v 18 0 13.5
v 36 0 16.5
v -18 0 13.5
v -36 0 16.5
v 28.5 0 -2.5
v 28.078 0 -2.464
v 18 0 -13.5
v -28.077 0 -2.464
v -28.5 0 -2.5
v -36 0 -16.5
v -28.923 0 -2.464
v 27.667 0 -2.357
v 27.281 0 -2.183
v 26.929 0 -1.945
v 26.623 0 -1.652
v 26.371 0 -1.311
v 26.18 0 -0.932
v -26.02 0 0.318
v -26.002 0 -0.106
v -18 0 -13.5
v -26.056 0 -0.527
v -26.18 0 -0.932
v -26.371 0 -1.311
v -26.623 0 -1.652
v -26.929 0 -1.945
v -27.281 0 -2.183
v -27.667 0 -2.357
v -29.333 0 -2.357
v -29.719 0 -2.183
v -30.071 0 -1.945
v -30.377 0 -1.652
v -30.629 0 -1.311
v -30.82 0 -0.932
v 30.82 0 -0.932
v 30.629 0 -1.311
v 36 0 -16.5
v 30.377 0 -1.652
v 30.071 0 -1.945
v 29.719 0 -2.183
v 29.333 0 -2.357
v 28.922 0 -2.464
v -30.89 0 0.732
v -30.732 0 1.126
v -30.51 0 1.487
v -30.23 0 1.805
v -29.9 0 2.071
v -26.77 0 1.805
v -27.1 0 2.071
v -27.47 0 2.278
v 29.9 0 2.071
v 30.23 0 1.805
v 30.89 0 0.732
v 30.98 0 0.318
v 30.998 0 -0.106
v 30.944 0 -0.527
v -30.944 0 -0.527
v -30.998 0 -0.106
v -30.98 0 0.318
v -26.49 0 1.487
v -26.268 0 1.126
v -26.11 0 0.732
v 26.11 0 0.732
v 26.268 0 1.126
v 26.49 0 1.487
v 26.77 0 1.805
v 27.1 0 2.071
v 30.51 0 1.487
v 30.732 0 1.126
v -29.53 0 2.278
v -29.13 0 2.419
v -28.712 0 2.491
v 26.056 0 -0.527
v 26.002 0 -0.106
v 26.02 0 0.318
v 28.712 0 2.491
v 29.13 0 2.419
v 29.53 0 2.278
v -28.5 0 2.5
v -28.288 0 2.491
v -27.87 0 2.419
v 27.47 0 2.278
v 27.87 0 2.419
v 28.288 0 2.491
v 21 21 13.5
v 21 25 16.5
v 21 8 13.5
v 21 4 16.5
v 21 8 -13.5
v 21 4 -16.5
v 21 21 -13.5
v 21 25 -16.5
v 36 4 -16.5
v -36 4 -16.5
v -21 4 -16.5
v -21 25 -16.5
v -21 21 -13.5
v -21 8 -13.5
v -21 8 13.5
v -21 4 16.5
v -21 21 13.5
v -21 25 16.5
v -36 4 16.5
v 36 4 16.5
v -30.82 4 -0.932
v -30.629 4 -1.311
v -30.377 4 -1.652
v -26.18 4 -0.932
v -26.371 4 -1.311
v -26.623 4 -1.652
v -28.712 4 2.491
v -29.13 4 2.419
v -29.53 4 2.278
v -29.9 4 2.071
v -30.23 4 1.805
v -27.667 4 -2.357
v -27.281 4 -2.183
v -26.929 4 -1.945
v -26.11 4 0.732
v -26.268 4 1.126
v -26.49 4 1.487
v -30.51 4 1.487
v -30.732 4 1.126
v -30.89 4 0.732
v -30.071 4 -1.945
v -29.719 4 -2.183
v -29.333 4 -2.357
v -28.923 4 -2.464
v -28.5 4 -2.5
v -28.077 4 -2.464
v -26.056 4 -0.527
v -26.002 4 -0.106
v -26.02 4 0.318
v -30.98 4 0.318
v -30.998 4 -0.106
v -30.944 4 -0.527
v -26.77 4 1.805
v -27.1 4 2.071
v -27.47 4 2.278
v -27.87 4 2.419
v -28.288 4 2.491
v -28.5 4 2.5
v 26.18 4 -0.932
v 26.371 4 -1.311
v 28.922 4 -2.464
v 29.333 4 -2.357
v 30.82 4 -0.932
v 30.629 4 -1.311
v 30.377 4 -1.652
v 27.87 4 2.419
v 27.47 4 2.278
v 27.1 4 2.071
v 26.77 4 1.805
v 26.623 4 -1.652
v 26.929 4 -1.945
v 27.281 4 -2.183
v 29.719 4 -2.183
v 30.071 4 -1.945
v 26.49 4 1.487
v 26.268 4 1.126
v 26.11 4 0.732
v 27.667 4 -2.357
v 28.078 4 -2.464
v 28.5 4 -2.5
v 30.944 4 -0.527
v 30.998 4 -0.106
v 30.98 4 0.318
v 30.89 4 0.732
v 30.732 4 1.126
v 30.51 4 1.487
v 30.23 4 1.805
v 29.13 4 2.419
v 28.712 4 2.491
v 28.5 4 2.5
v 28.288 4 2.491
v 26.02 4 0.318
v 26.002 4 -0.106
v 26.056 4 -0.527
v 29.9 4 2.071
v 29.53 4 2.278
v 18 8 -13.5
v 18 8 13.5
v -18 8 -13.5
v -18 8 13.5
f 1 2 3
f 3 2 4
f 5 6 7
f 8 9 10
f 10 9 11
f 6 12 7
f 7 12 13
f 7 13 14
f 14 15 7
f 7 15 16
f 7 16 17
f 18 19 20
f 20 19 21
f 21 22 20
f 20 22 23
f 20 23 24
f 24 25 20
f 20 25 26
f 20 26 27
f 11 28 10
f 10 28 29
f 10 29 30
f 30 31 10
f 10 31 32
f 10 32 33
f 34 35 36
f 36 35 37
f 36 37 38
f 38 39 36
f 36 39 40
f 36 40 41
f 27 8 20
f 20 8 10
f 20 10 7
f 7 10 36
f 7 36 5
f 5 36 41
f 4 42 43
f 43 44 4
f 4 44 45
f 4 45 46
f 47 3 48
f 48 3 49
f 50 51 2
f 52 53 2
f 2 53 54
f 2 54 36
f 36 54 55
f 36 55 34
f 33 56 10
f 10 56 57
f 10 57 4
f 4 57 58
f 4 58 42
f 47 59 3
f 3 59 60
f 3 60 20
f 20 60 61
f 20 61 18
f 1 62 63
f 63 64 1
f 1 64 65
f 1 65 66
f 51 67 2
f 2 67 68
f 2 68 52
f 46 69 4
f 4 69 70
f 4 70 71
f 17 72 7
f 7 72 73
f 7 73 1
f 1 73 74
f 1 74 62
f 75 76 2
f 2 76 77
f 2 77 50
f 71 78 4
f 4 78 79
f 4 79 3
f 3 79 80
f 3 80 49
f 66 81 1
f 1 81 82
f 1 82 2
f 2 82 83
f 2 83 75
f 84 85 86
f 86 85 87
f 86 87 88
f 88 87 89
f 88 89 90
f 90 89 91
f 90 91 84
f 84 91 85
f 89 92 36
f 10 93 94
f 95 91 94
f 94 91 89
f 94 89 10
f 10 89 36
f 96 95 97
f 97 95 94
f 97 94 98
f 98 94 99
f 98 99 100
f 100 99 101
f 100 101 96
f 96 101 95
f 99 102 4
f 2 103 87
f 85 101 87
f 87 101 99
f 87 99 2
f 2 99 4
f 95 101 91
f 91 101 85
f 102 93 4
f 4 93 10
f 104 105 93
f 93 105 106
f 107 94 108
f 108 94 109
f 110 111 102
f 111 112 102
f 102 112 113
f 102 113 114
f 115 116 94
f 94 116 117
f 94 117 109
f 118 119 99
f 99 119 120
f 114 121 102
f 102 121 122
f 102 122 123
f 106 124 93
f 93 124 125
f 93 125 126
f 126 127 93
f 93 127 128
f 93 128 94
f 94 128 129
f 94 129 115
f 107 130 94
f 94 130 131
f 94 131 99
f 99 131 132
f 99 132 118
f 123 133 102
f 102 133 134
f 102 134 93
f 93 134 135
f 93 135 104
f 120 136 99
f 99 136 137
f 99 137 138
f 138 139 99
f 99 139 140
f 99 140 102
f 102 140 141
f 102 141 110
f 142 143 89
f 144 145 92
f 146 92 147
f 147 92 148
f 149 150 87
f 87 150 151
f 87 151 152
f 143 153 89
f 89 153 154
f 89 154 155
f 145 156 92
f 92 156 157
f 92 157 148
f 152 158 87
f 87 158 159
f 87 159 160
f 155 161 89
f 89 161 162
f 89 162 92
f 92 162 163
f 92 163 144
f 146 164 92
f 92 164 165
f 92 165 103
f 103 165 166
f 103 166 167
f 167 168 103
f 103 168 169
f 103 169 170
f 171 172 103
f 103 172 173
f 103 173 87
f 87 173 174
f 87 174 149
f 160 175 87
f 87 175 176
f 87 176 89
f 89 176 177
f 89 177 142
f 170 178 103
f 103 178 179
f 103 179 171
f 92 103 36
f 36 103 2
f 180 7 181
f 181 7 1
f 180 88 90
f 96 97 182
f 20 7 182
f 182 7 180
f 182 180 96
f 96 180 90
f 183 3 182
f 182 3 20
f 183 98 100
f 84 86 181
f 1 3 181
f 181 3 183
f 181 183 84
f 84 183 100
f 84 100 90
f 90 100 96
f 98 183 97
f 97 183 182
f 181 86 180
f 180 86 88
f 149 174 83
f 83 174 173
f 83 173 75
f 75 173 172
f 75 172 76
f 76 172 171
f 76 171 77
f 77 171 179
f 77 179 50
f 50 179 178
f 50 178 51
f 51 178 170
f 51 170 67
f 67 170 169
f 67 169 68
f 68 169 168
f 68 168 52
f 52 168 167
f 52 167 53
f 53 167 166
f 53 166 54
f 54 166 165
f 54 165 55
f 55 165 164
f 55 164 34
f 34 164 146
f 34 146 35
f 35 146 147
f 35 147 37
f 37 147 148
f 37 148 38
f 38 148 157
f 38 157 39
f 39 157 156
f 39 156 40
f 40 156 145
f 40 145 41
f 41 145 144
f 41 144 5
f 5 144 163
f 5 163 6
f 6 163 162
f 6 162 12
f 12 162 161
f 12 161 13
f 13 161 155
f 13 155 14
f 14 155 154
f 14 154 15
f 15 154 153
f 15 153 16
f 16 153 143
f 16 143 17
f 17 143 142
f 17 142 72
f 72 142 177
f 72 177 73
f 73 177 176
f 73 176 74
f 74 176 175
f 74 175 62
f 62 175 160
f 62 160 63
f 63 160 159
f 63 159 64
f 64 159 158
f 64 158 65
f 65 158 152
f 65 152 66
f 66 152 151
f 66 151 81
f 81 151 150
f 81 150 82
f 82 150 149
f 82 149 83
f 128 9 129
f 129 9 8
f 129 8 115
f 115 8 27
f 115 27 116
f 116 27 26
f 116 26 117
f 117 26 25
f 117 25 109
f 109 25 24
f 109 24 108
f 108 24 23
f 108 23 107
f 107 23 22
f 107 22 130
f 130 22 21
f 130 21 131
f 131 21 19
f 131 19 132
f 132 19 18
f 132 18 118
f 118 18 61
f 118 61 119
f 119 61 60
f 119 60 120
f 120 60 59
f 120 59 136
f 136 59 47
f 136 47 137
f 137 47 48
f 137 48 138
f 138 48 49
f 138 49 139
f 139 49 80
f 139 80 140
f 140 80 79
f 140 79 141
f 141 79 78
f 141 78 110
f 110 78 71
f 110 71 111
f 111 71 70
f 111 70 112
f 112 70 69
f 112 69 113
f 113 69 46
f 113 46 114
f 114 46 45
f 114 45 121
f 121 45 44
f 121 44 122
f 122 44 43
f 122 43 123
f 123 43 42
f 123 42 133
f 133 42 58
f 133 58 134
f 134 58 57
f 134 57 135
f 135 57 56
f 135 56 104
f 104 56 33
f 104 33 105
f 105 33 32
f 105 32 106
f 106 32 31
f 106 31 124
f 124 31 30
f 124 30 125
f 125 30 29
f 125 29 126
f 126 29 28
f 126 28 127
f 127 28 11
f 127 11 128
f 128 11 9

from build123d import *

# Parameters (mm, degrees)
SKETCH_1_W          = 42
SKETCH_1_H          = 33
EXTRUDE_1_DEPTH     = 25
SKETCH_2_W          = 72
SKETCH_2_H          = 33
EXTRUDE_2_DEPTH     = 4
SKETCH_3_W          = 36
SKETCH_3_H          = 27
CUT_EXTRUDE_1_DEPTH = 21
SKETCH_4_W          = 27
SKETCH_4_H          = 13
CUT_EXTRUDE_2_DEPTH = 58
SKETCH_5_R          = 2.5
CUT_EXTRUDE_3_DEPTH = 26


with BuildPart() as part:
    # 草圖1 → 填料-伸長1 (new body)
    with BuildSketch(Plane(origin=(0, 0, 0), x_dir=(1, 0, 0), z_dir=(0, 1, 0))):
        Rectangle(SKETCH_1_W, SKETCH_1_H)
    extrude(amount=EXTRUDE_1_DEPTH)

    # 草圖2 → 填料-伸長2 (add)
    with BuildSketch(Plane(origin=(0, 0, 0), x_dir=(1, 0, 0), z_dir=(0, 1, 0))):
        Rectangle(SKETCH_2_W, SKETCH_2_H)
    extrude(amount=EXTRUDE_2_DEPTH)

    # 草圖3 → 除料-伸長1 (cut)
    with BuildSketch(Plane.XZ):
        Rectangle(SKETCH_3_W, SKETCH_3_H)
    extrude(amount=-CUT_EXTRUDE_1_DEPTH, mode=Mode.SUBTRACT)

    # 草圖4 → 除料-伸長2 (cut, through all)
    with BuildSketch(Plane.ZY.offset(21)):
        with Locations((0, 14.5)):
            Rectangle(SKETCH_4_W, SKETCH_4_H)
    extrude(amount=-CUT_EXTRUDE_2_DEPTH, mode=Mode.SUBTRACT)

    # 草圖5 → 除料-伸長3 (cut, through all)
    with BuildSketch(Plane.XZ):
        with Locations((28.5, 0)):
            Circle(SKETCH_5_R)
        with Locations((-28.5, 0)):
            Circle(SKETCH_5_R)
    extrude(amount=-CUT_EXTRUDE_3_DEPTH, mode=Mode.SUBTRACT)


solid = part.part
